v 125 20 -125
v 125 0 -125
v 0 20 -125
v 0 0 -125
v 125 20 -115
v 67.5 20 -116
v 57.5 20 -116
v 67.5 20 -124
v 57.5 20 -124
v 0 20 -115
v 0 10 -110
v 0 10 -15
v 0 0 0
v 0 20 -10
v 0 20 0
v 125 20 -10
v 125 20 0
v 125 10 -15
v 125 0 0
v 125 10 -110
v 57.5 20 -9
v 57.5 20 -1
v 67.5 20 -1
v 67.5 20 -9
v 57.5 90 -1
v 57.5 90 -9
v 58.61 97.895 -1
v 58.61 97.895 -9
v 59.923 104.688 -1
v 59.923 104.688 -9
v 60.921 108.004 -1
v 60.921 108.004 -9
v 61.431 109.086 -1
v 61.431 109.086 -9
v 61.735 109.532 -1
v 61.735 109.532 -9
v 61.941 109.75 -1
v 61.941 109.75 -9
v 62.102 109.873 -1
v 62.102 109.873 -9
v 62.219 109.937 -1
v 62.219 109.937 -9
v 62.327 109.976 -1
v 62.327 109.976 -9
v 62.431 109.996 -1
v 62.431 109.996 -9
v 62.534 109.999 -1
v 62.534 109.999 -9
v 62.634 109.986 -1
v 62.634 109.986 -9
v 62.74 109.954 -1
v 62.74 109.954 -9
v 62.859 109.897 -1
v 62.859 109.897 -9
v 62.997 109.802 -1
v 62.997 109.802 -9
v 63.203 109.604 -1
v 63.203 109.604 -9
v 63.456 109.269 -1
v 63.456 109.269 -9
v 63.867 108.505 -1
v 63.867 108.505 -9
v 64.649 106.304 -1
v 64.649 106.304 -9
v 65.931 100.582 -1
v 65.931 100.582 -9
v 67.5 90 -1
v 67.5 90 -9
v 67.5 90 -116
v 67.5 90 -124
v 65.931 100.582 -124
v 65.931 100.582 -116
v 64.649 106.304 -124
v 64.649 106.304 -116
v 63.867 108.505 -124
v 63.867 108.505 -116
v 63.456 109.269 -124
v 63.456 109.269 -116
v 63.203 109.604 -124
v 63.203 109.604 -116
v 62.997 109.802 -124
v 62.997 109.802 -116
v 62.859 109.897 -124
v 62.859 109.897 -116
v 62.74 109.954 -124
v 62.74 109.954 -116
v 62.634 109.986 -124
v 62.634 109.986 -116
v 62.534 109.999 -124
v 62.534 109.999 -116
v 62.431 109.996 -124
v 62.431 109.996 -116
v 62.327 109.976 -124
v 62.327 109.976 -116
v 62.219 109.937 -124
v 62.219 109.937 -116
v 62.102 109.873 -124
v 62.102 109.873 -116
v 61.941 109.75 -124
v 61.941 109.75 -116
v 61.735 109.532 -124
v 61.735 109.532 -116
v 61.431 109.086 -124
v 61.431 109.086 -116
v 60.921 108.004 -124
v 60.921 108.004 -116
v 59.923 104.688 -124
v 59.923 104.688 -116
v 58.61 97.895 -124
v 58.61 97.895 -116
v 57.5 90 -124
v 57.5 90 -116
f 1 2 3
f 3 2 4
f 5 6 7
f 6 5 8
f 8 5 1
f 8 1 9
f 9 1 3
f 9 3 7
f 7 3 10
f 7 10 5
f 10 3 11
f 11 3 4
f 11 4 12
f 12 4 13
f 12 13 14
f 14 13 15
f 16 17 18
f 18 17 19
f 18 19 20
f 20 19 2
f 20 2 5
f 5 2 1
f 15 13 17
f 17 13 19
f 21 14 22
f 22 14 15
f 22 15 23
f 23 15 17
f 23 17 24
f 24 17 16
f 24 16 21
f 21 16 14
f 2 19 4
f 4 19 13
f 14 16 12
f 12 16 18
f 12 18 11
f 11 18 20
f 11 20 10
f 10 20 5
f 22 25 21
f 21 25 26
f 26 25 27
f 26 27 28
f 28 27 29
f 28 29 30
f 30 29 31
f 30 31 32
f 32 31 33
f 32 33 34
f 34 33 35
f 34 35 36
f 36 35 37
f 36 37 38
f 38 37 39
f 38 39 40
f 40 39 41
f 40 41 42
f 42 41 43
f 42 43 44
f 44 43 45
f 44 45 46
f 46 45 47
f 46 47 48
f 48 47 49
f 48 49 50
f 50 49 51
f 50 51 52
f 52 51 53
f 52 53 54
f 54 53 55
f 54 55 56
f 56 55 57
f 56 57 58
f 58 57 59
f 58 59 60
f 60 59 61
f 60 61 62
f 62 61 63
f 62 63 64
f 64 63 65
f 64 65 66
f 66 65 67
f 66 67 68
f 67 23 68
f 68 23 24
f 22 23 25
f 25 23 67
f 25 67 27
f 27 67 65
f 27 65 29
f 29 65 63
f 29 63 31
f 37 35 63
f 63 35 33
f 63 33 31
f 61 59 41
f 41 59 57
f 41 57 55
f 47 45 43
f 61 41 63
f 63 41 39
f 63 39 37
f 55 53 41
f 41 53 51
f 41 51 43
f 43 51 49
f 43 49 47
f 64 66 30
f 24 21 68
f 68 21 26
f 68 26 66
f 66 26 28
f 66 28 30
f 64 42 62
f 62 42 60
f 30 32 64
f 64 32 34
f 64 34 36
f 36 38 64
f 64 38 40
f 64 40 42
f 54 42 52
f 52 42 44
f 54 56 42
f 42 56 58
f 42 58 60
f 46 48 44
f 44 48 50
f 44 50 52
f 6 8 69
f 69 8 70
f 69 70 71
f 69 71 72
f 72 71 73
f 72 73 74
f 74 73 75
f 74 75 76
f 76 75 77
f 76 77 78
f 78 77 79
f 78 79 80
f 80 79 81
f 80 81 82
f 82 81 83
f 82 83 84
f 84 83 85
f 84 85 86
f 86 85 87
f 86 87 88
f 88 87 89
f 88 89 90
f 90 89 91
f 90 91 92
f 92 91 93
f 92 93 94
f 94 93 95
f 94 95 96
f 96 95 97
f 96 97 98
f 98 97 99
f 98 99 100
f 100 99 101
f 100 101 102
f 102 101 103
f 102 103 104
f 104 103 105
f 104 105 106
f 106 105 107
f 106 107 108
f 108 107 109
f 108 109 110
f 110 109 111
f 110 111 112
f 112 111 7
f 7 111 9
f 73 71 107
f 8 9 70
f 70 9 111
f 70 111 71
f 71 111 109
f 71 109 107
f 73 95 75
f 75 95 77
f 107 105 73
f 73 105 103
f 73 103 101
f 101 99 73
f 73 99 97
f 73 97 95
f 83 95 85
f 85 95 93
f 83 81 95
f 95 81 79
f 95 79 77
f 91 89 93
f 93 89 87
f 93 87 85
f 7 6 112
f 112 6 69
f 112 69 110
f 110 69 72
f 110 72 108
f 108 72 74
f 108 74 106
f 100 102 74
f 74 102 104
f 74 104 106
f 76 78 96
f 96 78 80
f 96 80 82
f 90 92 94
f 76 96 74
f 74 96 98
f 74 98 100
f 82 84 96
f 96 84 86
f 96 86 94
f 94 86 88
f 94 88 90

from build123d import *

# Parameters (mm, degrees)
SKETCH2_W               = 125
SKETCH2_H               = 125
BOSS_EXTRUDE1_DEPTH     = 20
CUT_EXTRUDE1_DEPTH      = 178.904468747
CUT_EXTRUDE1_DEPTH_BACK = 178.904468747
BOSS_EXTRUDE2_DEPTH     = 10
CUT_EXTRUDE2_DEPTH      = 1
CUT_EXTRUDE3_DEPTH      = 1


with BuildPart() as part:
    # Sketch2 → Boss-Extrude1 (new body)
    with BuildSketch(Plane(origin=(0, 0, 0), x_dir=(1, 0, 0), z_dir=(0, 1, 0))):
        with Locations((62.5, 62.5)):
            Rectangle(SKETCH2_W, SKETCH2_H)
    extrude(amount=BOSS_EXTRUDE1_DEPTH)

    # Sketch4 → Cut-Extrude1 (cut, two sides: drawn at the far end of the back side and taken through both)
    with BuildSketch(Plane(origin=(125, 0, 0), x_dir=(0, 0, -1), z_dir=(1, 0, 0)).offset(-CUT_EXTRUDE1_DEPTH_BACK)):
        Polygon((-98.875201044, 237.750402088), (10, 20), (15, 10), (110, 10), (115, 20), (223.875201044, 237.750402088), (223.875201044, 724.655103285), (-98.875201044, 724.655103285), align=None)
    extrude(amount=CUT_EXTRUDE1_DEPTH + CUT_EXTRUDE1_DEPTH_BACK, mode=Mode.SUBTRACT)

    # Sketch3 → Boss-Extrude2 (add)
    with BuildSketch(Plane.XY):
        with BuildLine():
            Line((57.5, 20), (57.5, 90))
            add(Edge.make_bspline(
                [(57.5, 90), (62.5, 130), (67.5, 90)],
                knots=[0, 0, 0, 1, 1, 1], degree=2))
            Line((67.5, 90), (67.5, 20))
            Line((67.5, 20), (57.5, 20))
        make_face()
    boss_extrude2 = extrude(amount=-BOSS_EXTRUDE2_DEPTH)

    # Sketch6 → Cut-Extrude2 (cut)
    with BuildSketch(Plane.XY):
        with BuildLine():
            Line((57.5, 20), (67.5, 20))
            Line((67.5, 20), (67.5, 90))
            add(Edge.make_bspline(
                [(67.5, 90), (62.500000001, 129.999999993), (57.500000002, 90.000000015)],
                knots=[0, 0, 0, 1, 1, 1], degree=2))
            Line((57.500000002, 90.000000015), (57.5, 20))
        make_face()
    cut_extrude2 = extrude(amount=-CUT_EXTRUDE2_DEPTH, mode=Mode.SUBTRACT)

    # Sketch7 → Cut-Extrude3 (cut)
    with BuildSketch(Plane(origin=(0, 0, -10), x_dir=(-1, 0, 0), z_dir=(0, 0, -1))):
        with BuildLine():
            Line((-67.5, 20), (-57.5, 20))
            Line((-57.5, 20), (-57.5, 90))
            add(Edge.make_bspline(
                [(-57.5, 90), (-62.499999999, 129.999999993), (-67.499999998, 90.000000015)],
                knots=[0, 0, 0, 1, 1, 1], degree=2))
            Line((-67.499999998, 90.000000015), (-67.5, 20))
        make_face()
    cut_extrude3 = extrude(amount=-CUT_EXTRUDE3_DEPTH, mode=Mode.SUBTRACT)

    # Mirror1: Boss-Extrude2, Cut-Extrude2, Cut-Extrude3 across plane
    add(boss_extrude2.mirror(Plane.XY.offset(-62.5)))
    add(cut_extrude2.mirror(Plane.XY.offset(-62.5)), mode=Mode.SUBTRACT)
    add(cut_extrude3.mirror(Plane.XY.offset(-62.5)), mode=Mode.SUBTRACT)


solid = part.part
